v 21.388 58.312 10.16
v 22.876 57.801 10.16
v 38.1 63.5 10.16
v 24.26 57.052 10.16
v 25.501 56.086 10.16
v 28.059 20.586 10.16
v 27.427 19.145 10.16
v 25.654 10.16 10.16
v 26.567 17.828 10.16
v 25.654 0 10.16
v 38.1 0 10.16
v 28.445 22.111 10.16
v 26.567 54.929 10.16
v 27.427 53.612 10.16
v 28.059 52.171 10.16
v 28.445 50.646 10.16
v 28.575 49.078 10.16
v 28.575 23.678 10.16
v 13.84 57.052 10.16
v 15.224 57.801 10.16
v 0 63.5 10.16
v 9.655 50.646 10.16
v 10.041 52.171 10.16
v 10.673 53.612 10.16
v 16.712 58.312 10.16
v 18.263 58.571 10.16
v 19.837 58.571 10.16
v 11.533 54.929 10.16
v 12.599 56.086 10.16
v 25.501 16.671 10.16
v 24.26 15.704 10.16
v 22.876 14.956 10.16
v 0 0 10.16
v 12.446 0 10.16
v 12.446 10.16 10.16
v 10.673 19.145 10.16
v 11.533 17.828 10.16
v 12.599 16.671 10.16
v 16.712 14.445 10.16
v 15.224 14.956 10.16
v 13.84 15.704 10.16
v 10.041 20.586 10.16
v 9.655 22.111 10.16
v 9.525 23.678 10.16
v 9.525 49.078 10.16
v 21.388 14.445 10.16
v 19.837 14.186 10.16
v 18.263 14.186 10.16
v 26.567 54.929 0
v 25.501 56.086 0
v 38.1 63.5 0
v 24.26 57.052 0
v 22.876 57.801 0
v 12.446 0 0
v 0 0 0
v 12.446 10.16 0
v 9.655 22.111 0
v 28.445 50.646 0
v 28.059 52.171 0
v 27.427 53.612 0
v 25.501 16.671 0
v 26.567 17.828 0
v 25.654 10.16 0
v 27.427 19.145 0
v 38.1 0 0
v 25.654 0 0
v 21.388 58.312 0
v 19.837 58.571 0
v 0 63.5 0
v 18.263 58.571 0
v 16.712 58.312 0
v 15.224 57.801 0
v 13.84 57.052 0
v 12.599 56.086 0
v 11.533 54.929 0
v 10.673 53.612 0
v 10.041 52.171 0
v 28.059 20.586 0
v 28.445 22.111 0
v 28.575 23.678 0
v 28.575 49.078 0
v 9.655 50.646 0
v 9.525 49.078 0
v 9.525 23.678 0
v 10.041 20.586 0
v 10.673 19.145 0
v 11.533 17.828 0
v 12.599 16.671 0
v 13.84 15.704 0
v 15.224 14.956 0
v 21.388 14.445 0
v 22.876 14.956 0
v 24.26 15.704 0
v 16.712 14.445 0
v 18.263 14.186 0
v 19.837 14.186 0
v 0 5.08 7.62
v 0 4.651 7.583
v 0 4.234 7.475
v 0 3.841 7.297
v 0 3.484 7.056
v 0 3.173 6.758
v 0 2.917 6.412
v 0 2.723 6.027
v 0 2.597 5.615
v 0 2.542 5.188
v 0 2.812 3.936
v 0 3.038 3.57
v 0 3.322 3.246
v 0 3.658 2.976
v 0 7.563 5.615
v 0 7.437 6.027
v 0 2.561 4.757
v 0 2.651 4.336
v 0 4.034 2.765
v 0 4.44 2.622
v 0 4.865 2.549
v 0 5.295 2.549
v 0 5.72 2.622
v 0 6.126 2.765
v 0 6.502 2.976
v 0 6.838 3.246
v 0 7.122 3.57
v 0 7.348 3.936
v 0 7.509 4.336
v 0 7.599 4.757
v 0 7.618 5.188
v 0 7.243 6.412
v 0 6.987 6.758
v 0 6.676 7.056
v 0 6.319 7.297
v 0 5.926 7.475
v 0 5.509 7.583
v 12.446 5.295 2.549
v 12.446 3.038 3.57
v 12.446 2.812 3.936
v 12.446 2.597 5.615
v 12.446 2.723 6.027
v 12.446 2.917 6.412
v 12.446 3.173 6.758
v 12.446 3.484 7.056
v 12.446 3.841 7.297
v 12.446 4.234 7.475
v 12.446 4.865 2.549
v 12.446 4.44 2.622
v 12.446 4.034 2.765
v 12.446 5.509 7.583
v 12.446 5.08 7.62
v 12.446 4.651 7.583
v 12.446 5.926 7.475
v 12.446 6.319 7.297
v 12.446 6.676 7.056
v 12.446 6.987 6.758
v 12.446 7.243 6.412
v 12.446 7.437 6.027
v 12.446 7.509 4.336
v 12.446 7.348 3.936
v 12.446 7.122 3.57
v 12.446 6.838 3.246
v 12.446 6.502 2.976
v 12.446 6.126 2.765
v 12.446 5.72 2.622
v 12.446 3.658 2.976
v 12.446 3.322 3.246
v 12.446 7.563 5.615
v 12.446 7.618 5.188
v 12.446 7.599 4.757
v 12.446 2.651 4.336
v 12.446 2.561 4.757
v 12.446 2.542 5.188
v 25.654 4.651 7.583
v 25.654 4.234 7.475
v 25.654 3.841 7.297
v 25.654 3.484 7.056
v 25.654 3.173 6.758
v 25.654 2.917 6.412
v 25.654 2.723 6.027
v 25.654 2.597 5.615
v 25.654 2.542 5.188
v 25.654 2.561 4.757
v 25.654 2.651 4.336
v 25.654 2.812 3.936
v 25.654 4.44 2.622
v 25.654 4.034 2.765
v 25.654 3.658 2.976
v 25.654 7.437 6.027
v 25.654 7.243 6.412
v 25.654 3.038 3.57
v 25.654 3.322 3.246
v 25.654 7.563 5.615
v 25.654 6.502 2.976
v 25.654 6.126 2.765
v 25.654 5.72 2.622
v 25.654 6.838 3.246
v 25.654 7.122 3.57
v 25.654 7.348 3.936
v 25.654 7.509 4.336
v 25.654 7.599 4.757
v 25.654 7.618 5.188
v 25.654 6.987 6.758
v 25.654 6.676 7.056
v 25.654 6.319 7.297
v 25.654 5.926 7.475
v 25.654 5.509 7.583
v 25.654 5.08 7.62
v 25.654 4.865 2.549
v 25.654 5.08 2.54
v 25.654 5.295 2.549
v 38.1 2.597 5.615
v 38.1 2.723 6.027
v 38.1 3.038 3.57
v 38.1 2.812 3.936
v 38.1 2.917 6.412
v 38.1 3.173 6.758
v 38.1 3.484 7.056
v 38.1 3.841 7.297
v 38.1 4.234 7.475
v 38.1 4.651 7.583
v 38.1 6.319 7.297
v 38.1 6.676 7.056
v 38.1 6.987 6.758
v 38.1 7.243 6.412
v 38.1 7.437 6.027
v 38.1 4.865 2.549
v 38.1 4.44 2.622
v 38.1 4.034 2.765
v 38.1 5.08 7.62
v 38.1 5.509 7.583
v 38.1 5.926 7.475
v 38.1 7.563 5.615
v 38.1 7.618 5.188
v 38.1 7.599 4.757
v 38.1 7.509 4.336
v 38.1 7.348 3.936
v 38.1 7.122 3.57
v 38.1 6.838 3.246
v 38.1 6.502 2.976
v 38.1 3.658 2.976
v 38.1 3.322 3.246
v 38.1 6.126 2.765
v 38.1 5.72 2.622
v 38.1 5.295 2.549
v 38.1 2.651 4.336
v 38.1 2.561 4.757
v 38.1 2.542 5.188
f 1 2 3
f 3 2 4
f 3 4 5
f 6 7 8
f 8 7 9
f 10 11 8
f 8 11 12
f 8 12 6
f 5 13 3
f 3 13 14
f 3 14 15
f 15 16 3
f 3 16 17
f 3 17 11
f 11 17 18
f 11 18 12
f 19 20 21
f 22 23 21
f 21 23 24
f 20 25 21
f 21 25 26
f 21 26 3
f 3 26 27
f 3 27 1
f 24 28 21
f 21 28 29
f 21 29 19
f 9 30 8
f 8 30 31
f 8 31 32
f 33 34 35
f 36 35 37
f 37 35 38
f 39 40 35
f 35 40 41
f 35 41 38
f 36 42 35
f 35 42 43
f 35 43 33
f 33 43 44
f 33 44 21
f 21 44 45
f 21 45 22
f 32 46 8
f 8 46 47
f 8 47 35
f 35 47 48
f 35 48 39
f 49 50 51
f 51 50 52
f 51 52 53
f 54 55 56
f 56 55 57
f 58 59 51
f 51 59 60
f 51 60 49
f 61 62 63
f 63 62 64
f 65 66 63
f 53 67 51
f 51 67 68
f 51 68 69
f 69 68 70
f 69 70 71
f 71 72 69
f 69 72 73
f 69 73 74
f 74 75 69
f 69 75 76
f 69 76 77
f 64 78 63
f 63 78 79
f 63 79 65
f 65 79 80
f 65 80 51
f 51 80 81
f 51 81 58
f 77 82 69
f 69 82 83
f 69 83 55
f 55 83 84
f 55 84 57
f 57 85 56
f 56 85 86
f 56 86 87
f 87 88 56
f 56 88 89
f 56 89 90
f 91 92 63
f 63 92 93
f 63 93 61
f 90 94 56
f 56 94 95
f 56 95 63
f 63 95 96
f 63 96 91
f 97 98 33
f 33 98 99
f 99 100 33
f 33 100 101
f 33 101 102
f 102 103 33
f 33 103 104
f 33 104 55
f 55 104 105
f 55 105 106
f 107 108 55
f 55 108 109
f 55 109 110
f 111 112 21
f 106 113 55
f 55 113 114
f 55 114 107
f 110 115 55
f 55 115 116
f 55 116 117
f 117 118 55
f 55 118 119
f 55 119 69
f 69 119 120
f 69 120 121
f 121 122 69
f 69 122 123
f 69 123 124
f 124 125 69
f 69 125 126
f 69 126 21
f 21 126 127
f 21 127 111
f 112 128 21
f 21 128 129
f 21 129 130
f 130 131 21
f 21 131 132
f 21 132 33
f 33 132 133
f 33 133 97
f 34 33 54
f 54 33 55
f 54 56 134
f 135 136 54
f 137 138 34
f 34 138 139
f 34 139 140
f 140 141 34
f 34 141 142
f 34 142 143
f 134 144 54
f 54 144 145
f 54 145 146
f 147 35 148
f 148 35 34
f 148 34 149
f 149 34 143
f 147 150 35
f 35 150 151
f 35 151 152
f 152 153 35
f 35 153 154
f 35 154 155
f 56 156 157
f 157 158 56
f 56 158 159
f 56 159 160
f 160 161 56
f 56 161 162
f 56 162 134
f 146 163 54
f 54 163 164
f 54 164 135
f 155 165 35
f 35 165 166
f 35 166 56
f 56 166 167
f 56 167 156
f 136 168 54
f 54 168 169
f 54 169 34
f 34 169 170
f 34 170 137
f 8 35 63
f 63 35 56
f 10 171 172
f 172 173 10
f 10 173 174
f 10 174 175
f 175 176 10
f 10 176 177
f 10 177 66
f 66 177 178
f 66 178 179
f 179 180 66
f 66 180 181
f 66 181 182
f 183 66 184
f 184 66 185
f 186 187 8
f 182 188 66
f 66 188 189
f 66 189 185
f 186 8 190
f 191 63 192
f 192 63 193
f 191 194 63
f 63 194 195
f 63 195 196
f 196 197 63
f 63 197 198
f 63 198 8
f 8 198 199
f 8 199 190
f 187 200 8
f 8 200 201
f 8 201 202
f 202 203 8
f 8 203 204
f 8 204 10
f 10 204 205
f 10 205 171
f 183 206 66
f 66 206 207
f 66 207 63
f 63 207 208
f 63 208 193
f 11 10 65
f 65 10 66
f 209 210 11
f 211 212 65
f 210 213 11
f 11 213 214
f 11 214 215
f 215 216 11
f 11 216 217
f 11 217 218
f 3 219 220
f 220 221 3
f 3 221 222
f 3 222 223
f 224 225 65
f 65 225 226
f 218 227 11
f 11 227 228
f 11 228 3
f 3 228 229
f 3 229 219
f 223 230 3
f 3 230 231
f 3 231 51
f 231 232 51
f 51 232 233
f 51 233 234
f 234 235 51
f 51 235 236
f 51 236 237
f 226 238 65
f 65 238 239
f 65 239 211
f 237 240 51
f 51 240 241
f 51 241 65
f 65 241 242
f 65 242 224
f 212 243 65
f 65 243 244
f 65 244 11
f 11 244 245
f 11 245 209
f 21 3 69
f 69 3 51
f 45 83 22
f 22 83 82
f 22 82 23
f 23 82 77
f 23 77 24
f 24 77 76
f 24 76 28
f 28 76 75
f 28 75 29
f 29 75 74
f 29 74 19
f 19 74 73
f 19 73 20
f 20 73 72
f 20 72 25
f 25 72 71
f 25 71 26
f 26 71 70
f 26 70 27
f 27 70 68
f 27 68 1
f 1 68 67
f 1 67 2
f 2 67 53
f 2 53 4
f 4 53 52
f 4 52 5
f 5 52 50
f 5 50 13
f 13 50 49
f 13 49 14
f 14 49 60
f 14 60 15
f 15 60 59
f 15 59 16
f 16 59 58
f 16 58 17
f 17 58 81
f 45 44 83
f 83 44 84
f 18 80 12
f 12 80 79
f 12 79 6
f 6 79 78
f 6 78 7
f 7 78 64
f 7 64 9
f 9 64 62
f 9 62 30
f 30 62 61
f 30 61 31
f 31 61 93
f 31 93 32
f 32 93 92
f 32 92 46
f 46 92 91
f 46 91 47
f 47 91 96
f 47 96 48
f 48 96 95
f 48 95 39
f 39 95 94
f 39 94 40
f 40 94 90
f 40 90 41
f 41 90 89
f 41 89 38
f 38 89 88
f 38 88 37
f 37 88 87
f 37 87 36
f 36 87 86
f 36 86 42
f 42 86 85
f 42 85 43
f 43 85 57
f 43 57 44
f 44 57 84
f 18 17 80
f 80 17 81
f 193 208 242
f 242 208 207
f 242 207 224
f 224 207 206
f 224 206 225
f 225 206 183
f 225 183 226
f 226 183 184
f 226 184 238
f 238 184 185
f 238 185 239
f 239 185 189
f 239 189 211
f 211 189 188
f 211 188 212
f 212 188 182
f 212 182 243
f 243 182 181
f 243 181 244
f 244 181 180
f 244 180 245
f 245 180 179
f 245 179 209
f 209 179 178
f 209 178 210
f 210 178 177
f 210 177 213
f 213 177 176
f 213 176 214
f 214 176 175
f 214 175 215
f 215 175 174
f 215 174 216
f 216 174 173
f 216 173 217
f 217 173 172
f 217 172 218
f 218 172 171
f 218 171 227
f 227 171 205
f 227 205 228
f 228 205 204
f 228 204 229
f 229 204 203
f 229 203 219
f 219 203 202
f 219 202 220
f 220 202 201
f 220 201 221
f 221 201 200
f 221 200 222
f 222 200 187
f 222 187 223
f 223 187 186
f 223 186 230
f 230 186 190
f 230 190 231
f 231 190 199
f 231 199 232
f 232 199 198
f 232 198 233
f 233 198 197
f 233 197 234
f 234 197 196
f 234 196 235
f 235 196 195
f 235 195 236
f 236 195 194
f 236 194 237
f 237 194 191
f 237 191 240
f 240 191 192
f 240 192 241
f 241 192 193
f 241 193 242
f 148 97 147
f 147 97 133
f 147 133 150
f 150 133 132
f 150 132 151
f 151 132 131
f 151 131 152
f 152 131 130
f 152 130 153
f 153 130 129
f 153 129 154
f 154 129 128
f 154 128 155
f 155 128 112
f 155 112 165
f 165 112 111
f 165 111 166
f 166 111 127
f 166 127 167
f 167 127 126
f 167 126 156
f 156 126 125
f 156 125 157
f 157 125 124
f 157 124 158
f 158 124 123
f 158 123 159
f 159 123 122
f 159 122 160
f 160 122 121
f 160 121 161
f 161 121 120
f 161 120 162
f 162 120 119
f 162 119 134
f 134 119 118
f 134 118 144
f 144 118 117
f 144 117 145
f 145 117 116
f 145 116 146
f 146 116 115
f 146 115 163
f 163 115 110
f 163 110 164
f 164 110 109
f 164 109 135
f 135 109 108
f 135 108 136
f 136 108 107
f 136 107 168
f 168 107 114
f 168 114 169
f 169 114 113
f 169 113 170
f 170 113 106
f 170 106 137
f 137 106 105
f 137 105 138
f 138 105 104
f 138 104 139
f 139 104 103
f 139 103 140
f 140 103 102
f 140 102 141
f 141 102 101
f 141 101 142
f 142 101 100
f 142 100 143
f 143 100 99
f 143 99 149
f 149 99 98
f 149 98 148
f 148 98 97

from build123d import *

# Parameters (mm, degrees)
BOSS_EXTRUDE2_DEPTH = 10.16
SKETCH4_R           = 2.54
CUT_EXTRUDE1_DEPTH  = 38.1


with BuildPart() as part:
    # Sketch1 → Boss-Extrude2 (new body)
    with BuildSketch(Plane.XY):
        Polygon((0, 0), (12.446, 0), (12.446, 10.16), (25.654, 10.16), (25.654, 0), (38.1, 0), (38.1, 63.5), (0, 63.5), align=None)
        with BuildLine():
            Line((9.525, 49.078456098), (9.525, 23.678456098))
            ThreePointArc((9.525, 23.678456098), (19.05, 14.153456098), (28.575, 23.678456098))
            Line((28.575, 23.678456098), (28.575, 49.078456098))
            ThreePointArc((28.575, 49.078456098), (19.05, 58.603456098), (9.525, 49.078456098))
        make_face(mode=Mode.SUBTRACT)
    extrude(amount=BOSS_EXTRUDE2_DEPTH)

    # Sketch4 → Cut-Extrude1 (cut)
    with BuildSketch(Plane.ZY):
        with Locations((5.08, 5.08)):
            Circle(SKETCH4_R)
    extrude(amount=-CUT_EXTRUDE1_DEPTH, mode=Mode.SUBTRACT)


solid = part.part
